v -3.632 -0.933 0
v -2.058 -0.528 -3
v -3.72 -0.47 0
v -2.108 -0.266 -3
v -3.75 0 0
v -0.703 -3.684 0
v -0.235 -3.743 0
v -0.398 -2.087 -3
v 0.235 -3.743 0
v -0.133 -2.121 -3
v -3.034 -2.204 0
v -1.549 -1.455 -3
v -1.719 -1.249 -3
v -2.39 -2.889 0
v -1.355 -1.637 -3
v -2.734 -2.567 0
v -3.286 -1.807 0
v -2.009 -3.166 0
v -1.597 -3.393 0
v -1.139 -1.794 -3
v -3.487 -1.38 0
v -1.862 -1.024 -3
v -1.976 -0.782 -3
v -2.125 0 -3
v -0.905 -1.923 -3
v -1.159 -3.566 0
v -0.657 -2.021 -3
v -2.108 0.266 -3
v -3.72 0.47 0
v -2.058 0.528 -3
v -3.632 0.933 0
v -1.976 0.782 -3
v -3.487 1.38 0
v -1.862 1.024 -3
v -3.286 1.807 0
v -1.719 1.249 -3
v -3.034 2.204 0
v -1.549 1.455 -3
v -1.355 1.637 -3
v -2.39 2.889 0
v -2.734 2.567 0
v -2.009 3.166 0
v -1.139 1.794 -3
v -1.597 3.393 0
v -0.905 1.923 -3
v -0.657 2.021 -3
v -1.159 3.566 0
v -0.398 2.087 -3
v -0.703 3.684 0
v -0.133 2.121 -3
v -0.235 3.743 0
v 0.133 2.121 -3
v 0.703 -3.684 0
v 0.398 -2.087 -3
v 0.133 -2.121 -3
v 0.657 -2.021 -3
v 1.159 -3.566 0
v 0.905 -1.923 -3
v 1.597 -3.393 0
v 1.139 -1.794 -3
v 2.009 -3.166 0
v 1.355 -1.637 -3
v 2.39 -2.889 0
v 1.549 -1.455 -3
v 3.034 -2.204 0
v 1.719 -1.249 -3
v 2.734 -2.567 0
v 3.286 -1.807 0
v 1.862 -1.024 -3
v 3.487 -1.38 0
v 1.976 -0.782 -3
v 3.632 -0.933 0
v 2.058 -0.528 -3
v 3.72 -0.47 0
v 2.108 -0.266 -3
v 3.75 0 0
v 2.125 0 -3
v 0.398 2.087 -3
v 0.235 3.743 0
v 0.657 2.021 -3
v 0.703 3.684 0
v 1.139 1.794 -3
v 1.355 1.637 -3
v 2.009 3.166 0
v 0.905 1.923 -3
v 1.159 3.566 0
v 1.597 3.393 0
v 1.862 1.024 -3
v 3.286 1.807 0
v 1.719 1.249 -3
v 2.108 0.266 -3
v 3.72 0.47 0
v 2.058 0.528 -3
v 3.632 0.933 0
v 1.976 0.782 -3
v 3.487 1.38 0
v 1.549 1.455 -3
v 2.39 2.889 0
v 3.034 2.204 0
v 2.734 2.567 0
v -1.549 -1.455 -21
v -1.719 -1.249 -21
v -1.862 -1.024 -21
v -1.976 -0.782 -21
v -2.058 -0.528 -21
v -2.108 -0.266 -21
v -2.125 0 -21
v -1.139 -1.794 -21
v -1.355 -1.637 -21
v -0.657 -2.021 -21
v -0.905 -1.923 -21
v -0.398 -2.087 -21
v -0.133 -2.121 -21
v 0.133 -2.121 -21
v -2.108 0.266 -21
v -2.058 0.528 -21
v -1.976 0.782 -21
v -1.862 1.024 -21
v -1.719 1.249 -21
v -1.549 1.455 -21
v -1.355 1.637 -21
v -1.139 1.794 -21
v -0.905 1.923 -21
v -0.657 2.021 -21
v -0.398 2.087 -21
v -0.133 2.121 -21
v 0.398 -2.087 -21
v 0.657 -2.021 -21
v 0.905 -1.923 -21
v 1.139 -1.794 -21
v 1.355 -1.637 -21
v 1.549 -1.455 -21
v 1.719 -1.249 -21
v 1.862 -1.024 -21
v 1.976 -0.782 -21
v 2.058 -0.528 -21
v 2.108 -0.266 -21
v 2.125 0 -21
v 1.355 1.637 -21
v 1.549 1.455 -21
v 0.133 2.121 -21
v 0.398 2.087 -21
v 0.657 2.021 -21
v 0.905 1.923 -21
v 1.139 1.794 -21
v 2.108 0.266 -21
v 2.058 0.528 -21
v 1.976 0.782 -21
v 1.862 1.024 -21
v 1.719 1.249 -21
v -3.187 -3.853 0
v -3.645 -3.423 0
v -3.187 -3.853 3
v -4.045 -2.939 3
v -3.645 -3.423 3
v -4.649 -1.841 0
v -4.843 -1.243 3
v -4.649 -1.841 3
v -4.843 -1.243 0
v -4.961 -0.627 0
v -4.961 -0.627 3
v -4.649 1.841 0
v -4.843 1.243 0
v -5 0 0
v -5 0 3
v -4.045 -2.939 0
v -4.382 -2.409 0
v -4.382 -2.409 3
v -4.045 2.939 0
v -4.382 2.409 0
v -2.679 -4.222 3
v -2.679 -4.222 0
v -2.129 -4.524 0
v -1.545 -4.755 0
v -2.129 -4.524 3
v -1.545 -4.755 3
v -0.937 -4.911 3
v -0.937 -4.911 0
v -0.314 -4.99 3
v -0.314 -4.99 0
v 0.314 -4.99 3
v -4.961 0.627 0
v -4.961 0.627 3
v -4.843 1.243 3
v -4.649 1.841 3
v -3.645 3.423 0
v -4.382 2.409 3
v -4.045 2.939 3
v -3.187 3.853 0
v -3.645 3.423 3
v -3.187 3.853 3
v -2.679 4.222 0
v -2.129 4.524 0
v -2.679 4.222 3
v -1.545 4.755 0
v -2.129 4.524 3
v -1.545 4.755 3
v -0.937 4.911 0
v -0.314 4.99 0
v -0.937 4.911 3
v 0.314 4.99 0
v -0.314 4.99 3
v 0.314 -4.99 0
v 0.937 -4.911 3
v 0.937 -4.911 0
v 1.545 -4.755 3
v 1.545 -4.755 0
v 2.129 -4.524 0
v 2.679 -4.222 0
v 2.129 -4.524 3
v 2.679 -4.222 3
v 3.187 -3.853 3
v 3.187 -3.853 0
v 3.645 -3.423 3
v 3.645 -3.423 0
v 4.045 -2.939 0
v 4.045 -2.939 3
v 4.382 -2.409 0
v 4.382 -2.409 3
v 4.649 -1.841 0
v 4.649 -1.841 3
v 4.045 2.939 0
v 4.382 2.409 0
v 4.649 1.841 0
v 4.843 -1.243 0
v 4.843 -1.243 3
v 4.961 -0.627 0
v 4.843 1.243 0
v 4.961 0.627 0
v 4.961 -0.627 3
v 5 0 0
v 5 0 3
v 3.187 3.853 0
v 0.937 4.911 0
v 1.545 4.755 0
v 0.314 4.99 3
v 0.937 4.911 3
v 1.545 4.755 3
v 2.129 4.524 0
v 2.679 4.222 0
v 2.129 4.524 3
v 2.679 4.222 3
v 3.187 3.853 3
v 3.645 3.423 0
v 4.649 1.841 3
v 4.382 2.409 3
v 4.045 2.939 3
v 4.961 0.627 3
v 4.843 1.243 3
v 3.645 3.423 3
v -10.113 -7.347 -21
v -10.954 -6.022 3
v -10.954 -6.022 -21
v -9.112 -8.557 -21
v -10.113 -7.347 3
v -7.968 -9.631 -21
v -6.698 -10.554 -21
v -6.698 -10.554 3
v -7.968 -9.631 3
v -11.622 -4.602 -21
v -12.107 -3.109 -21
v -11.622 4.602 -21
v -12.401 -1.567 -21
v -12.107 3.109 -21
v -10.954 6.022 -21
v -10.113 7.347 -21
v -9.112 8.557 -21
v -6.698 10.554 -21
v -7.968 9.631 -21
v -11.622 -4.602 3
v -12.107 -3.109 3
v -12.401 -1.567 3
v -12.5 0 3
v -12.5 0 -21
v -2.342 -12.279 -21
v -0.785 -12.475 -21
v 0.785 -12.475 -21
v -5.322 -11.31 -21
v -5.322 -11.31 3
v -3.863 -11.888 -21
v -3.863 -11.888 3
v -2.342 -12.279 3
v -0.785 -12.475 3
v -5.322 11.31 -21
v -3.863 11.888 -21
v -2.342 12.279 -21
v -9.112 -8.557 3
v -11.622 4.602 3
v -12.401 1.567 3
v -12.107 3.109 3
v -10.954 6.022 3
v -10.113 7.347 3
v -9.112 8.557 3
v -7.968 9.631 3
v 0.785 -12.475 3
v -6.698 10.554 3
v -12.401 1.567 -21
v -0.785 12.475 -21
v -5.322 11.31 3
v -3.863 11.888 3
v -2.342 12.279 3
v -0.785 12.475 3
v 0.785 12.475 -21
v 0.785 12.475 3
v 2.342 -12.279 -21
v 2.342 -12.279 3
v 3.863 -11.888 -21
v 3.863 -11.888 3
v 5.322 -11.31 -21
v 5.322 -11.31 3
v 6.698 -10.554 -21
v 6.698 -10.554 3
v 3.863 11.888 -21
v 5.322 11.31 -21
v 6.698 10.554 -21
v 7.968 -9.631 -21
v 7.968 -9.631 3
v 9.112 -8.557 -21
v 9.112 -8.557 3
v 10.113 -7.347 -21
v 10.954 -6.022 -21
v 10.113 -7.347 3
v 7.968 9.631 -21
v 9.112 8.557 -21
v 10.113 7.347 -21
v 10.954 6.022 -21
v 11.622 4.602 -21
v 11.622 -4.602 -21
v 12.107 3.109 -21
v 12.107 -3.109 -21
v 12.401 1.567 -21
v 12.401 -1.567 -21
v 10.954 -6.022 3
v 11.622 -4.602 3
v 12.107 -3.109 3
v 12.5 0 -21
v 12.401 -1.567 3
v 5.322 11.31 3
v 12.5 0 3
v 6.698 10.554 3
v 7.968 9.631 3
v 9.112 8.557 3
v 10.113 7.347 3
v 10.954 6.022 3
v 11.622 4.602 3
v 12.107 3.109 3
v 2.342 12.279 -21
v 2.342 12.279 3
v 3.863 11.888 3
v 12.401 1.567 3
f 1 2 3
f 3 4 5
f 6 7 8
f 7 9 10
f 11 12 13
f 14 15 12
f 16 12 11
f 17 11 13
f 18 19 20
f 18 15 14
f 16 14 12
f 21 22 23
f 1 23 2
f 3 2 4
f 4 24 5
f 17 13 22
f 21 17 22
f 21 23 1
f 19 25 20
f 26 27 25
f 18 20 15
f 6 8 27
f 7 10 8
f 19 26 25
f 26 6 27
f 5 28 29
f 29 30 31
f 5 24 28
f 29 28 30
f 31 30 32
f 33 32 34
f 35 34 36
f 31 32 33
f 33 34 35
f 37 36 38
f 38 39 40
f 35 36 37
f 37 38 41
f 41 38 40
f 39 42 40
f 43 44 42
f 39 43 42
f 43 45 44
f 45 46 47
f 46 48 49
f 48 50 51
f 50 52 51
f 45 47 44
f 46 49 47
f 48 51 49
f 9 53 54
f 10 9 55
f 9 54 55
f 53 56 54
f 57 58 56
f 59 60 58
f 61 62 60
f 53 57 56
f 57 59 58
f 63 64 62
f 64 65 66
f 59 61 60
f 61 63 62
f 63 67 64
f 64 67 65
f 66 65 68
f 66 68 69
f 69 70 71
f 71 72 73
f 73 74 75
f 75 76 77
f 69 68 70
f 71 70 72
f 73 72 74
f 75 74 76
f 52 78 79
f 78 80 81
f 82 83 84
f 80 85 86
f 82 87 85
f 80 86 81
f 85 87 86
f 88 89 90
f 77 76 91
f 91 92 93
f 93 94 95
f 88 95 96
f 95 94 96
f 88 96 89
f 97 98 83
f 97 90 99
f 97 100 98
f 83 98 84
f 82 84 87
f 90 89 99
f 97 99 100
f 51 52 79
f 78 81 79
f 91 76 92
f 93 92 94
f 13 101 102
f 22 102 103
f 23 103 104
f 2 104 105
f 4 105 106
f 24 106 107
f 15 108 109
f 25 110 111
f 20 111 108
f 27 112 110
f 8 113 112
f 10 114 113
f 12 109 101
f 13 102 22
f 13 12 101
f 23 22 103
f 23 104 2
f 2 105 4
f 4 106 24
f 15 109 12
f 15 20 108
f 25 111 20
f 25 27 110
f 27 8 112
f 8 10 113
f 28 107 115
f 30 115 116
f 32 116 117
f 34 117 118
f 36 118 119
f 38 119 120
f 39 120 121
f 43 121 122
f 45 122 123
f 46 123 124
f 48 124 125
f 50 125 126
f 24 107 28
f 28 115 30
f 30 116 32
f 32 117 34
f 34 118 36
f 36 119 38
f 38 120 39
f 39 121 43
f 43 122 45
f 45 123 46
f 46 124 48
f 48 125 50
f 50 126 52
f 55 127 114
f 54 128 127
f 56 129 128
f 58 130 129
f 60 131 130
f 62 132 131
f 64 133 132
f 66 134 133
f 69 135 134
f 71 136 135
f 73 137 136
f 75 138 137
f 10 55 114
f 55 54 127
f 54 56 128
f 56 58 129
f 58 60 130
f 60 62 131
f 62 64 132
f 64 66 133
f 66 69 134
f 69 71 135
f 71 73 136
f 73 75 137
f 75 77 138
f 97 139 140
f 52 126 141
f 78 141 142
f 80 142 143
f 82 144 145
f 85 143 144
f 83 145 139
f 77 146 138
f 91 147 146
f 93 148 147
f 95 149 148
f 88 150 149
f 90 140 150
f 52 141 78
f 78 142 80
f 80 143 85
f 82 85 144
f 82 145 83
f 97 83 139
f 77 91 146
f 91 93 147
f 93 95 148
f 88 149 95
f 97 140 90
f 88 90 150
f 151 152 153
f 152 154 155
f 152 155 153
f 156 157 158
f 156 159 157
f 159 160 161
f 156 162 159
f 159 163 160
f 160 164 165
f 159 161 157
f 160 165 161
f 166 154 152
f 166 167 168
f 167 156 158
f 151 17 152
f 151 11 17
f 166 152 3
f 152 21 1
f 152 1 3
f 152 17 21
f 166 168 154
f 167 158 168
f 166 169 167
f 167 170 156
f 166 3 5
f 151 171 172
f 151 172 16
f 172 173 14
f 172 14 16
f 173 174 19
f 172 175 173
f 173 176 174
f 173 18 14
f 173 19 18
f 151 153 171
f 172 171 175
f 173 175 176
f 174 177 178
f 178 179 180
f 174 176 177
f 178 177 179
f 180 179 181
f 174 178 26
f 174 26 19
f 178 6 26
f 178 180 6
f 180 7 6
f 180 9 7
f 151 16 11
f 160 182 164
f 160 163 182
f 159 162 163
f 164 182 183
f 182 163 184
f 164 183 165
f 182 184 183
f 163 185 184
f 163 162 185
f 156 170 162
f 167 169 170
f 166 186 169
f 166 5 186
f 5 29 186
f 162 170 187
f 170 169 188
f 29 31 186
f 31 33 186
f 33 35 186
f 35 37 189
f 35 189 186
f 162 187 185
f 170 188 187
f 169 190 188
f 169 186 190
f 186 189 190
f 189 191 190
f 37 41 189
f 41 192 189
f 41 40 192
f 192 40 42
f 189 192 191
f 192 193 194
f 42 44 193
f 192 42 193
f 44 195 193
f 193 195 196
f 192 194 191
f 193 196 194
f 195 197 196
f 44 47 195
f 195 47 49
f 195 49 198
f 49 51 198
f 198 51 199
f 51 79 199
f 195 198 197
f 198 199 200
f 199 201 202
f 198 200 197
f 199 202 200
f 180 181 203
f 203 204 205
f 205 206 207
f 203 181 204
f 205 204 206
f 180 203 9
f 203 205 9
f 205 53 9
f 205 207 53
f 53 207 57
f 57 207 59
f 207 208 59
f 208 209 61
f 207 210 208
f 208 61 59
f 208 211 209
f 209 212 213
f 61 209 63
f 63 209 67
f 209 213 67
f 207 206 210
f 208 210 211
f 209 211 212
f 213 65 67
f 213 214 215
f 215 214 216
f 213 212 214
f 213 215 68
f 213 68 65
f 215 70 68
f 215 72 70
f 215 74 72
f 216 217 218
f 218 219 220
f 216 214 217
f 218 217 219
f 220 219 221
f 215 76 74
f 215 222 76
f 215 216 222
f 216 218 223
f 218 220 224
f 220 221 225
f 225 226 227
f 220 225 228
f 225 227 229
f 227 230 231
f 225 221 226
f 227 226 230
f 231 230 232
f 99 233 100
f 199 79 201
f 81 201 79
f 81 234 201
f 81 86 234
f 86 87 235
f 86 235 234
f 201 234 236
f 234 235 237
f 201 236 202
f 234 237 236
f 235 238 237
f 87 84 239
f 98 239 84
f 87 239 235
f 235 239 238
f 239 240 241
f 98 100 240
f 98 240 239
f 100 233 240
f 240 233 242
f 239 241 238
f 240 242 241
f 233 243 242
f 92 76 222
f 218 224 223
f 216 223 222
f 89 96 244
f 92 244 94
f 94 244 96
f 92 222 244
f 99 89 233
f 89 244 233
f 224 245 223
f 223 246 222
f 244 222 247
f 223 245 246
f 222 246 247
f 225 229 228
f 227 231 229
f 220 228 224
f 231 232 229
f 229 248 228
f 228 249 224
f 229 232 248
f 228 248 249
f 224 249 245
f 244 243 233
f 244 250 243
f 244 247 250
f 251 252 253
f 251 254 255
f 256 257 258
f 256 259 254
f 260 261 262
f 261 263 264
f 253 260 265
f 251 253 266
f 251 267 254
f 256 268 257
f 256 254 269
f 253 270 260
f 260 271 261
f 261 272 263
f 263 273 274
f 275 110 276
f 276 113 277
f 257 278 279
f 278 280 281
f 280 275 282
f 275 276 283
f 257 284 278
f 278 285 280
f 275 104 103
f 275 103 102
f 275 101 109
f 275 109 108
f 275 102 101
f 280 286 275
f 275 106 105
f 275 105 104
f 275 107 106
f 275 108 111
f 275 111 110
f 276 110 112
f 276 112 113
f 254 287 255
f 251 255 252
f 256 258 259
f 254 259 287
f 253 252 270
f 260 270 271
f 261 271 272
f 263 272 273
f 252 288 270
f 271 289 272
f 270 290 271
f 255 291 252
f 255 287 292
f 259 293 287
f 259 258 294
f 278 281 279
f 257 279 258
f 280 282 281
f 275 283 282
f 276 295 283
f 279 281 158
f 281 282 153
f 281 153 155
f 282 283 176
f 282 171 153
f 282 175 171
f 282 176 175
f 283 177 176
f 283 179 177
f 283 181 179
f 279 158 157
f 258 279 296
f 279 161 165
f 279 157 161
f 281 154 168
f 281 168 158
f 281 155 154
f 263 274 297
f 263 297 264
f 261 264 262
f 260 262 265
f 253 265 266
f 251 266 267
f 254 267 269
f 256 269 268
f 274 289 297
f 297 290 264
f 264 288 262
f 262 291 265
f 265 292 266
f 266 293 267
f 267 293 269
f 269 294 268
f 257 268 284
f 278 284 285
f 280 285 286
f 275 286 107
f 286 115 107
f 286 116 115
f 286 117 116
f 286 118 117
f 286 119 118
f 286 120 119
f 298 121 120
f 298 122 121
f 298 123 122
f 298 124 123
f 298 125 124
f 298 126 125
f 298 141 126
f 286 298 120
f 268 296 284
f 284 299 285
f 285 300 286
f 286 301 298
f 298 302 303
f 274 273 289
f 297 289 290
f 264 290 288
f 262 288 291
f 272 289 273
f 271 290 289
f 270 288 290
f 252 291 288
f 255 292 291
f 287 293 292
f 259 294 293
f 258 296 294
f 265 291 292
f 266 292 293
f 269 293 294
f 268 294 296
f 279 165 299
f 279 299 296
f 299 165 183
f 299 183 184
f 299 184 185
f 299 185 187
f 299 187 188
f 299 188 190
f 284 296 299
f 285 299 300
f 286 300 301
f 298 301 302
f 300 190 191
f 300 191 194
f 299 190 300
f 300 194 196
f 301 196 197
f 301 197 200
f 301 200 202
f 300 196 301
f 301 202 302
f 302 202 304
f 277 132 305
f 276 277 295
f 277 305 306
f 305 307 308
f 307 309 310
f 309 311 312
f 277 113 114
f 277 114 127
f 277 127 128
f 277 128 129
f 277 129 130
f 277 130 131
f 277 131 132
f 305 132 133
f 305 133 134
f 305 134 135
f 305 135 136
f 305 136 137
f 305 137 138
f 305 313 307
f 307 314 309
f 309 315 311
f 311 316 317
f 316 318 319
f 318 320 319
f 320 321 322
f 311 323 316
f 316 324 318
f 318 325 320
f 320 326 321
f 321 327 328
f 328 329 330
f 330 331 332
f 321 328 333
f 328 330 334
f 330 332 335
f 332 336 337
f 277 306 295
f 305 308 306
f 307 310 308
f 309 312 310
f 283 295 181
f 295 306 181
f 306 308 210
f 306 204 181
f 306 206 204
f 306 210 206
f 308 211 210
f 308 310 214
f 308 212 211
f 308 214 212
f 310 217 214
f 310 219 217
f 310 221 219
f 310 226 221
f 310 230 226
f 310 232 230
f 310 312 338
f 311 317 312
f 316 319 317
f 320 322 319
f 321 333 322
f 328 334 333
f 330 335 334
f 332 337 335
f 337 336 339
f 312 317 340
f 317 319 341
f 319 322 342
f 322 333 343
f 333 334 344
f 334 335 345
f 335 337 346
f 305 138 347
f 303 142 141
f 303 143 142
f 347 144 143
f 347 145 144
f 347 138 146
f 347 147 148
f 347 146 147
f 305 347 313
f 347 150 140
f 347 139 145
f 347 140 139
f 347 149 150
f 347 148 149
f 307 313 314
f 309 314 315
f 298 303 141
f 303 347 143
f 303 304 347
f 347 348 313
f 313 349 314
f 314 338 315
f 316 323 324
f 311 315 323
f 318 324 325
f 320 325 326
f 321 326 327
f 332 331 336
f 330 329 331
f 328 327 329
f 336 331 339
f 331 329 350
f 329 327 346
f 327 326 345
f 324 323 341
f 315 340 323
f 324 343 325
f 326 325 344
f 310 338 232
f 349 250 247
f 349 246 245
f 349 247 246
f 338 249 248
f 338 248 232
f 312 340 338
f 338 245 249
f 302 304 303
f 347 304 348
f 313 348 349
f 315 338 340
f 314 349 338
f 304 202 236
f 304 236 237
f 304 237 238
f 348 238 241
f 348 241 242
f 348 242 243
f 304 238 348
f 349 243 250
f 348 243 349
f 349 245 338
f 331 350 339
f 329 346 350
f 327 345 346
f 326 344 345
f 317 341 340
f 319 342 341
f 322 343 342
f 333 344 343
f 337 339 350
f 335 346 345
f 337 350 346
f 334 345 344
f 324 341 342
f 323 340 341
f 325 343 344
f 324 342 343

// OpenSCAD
$fn = 50;


difference() {
	union() {
		translate(v = [0, 0, -21.0000000000]) {
			cylinder(h = 24, r = 12.5000000000);
		}
	}
	union() {
		translate(v = [0, 0, 0]) {
			rotate(a = [0, 0, 0]) {
				difference() {
					union() {
						translate(v = [0, 0, -24.0000000000]) {
							cylinder(h = 24, r = 2.0000000000);
						}
						translate(v = [0, 0, -3]) {
							cylinder(h = 3, r1 = 2.1250000000, r2 = 3.7500000000);
						}
						translate(v = [0, 0, -24.0000000000]) {
							cylinder(h = 24, r = 2.1250000000);
						}
						translate(v = [0, 0, -24.0000000000]) {
							cylinder(h = 24, r = 2.0000000000);
						}
					}
					union();
				}
			}
		}
		#cylinder(h = 3, r = 5.0000000000);
	}
}
